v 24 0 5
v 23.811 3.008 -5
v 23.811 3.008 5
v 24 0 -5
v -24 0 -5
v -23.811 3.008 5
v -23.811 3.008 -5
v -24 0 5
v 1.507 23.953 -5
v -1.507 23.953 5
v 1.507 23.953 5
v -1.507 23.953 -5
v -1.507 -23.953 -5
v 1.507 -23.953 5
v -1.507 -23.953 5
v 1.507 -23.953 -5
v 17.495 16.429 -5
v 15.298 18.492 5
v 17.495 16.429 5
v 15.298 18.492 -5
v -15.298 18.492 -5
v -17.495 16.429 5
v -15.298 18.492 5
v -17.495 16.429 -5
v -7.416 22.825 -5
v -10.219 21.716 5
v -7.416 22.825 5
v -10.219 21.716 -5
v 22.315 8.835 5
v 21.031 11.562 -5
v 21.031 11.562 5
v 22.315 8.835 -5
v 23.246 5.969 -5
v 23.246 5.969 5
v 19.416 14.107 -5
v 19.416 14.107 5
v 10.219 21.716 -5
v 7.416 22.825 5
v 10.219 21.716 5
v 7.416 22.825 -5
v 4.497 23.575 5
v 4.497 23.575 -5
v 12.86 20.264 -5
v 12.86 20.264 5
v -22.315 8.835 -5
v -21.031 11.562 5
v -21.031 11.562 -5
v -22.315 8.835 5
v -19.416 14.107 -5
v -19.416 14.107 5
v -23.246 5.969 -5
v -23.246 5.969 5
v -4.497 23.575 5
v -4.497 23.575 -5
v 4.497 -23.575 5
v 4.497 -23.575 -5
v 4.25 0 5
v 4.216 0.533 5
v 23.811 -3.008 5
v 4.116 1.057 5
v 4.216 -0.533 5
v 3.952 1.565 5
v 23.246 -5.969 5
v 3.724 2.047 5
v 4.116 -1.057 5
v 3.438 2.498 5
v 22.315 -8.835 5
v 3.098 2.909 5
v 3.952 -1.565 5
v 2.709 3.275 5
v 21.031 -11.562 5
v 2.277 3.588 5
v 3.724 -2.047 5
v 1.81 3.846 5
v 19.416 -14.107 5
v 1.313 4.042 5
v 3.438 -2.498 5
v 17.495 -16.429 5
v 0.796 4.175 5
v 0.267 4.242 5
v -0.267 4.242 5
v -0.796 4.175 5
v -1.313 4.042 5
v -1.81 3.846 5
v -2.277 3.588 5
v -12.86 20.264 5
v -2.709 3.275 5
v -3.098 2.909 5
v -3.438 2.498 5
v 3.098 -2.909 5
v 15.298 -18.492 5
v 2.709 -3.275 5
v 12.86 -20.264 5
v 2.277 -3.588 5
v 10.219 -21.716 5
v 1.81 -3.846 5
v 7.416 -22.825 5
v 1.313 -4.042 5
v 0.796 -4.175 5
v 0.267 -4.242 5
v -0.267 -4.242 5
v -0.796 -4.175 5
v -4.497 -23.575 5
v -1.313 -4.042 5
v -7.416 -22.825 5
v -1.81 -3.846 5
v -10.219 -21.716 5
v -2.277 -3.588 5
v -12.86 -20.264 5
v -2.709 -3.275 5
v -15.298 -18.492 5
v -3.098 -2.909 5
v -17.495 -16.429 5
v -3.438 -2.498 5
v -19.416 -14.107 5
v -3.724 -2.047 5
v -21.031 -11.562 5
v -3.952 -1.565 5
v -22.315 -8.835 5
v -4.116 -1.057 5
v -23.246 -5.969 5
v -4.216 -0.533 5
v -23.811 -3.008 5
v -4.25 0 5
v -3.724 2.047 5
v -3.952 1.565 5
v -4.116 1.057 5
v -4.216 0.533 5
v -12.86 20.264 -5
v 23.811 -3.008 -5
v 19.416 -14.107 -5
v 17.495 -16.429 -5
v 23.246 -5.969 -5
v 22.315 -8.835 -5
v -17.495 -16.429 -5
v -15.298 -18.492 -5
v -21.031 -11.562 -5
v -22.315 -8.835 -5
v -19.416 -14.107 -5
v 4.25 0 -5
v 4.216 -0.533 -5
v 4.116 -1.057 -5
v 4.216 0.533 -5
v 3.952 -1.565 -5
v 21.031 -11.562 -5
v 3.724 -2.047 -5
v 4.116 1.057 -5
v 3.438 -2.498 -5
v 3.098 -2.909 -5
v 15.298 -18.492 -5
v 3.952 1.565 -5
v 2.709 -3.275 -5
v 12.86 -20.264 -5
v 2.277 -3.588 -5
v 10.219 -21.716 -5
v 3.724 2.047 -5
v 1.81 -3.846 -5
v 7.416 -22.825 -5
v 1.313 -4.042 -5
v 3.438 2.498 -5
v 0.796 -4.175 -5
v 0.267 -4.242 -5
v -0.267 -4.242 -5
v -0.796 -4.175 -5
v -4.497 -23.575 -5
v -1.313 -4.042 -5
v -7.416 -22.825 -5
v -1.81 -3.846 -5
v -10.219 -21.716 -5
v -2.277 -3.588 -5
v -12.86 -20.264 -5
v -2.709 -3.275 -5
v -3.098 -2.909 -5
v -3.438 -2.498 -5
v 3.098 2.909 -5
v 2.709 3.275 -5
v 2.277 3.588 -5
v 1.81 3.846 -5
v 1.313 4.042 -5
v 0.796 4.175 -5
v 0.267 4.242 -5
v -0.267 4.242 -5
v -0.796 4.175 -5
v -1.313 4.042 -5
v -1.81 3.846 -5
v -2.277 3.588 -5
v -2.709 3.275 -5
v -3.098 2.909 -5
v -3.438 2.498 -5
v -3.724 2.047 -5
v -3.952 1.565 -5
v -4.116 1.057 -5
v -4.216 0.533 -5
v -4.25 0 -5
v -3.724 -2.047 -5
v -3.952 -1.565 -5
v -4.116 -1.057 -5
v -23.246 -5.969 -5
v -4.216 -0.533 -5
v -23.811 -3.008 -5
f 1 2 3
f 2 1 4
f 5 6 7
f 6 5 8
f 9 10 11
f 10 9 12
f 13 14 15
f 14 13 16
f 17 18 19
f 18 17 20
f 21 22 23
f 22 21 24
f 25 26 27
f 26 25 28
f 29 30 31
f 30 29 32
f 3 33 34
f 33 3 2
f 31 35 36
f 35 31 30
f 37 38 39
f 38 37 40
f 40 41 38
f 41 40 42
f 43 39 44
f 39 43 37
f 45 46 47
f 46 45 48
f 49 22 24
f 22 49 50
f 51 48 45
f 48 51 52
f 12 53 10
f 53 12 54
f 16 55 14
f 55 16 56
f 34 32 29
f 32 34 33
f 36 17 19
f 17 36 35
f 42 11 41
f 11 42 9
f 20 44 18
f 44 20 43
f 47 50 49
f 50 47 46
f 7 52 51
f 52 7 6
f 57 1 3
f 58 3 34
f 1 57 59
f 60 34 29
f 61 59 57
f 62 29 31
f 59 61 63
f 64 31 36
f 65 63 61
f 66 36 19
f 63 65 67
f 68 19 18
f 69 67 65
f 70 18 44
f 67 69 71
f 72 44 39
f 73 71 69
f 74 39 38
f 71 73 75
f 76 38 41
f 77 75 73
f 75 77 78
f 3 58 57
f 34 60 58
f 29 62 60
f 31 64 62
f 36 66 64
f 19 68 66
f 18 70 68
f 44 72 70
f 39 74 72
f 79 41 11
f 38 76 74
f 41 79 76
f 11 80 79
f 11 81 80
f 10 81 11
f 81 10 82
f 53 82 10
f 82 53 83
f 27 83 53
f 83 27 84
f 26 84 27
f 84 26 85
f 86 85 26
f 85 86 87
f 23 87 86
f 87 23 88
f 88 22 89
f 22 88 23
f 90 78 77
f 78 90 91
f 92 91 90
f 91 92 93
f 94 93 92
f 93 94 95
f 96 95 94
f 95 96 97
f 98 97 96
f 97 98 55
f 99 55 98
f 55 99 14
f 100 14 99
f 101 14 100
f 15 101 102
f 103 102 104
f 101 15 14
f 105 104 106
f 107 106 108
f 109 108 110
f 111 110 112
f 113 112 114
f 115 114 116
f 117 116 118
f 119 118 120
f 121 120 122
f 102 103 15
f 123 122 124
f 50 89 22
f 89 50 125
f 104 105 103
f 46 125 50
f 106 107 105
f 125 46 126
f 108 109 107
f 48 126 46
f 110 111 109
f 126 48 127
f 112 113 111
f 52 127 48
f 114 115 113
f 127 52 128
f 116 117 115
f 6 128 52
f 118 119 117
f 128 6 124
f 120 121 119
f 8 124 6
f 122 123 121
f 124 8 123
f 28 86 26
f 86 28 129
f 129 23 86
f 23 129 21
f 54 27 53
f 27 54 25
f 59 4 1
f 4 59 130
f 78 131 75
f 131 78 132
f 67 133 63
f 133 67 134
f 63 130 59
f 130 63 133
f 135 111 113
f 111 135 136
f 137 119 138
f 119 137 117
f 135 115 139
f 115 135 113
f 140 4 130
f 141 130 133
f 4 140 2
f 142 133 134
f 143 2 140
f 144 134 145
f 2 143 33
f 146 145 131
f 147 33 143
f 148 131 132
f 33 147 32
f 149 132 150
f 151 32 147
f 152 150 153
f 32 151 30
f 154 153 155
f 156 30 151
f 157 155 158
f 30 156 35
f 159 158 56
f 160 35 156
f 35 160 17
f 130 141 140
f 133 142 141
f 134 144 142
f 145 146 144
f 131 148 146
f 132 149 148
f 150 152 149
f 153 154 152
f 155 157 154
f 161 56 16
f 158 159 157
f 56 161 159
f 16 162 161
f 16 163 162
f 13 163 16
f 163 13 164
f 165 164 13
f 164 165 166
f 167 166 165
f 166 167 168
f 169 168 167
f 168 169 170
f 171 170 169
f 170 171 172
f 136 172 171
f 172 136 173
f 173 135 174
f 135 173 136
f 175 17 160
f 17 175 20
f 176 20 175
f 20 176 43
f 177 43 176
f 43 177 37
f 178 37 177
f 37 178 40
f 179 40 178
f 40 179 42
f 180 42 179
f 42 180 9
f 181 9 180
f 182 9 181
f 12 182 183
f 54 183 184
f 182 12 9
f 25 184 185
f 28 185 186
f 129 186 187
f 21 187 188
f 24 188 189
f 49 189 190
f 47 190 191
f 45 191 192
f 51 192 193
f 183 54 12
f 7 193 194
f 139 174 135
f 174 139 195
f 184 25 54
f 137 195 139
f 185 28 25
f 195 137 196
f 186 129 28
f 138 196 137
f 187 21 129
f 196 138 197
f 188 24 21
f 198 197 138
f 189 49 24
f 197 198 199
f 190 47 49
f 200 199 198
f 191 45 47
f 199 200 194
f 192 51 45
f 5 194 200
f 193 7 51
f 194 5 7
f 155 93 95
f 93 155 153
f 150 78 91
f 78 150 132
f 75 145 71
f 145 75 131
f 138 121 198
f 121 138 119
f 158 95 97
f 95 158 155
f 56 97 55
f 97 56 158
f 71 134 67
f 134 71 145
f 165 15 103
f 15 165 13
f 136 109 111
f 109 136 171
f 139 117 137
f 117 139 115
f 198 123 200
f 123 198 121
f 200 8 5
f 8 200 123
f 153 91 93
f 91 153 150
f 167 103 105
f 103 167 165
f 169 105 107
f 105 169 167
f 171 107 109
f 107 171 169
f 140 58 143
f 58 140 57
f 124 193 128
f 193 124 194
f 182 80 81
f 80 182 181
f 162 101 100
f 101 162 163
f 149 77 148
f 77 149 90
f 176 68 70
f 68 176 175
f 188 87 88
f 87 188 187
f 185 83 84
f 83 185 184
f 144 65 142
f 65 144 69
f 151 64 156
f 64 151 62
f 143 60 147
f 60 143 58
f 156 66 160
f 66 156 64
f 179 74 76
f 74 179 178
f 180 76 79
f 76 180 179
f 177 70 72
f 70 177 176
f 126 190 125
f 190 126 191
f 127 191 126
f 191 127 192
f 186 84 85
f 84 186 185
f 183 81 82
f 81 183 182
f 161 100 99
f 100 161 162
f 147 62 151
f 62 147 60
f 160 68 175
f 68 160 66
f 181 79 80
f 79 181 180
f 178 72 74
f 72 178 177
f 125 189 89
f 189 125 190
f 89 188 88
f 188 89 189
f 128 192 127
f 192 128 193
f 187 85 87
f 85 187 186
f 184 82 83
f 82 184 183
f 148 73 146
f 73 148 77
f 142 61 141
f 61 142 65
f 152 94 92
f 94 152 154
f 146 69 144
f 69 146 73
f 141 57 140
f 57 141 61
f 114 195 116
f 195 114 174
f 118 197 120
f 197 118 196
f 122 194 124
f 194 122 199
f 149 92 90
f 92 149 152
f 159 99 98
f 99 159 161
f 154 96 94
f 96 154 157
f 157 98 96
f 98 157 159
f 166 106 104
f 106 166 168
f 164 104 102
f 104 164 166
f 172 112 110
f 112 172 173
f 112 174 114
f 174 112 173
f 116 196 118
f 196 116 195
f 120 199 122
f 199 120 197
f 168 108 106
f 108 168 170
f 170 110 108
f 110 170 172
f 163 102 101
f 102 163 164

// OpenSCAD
$fn = 50;


difference() {
	union() {
		translate(v = [0, 0, -5.0000000000]) {
			cylinder(h = 10, r = 24.0000000000);
		}
	}
	union() {
		translate(v = [0, 0, -100.0000000000]) {
			cylinder(h = 200, r = 4.2500000000);
		}
	}
}
